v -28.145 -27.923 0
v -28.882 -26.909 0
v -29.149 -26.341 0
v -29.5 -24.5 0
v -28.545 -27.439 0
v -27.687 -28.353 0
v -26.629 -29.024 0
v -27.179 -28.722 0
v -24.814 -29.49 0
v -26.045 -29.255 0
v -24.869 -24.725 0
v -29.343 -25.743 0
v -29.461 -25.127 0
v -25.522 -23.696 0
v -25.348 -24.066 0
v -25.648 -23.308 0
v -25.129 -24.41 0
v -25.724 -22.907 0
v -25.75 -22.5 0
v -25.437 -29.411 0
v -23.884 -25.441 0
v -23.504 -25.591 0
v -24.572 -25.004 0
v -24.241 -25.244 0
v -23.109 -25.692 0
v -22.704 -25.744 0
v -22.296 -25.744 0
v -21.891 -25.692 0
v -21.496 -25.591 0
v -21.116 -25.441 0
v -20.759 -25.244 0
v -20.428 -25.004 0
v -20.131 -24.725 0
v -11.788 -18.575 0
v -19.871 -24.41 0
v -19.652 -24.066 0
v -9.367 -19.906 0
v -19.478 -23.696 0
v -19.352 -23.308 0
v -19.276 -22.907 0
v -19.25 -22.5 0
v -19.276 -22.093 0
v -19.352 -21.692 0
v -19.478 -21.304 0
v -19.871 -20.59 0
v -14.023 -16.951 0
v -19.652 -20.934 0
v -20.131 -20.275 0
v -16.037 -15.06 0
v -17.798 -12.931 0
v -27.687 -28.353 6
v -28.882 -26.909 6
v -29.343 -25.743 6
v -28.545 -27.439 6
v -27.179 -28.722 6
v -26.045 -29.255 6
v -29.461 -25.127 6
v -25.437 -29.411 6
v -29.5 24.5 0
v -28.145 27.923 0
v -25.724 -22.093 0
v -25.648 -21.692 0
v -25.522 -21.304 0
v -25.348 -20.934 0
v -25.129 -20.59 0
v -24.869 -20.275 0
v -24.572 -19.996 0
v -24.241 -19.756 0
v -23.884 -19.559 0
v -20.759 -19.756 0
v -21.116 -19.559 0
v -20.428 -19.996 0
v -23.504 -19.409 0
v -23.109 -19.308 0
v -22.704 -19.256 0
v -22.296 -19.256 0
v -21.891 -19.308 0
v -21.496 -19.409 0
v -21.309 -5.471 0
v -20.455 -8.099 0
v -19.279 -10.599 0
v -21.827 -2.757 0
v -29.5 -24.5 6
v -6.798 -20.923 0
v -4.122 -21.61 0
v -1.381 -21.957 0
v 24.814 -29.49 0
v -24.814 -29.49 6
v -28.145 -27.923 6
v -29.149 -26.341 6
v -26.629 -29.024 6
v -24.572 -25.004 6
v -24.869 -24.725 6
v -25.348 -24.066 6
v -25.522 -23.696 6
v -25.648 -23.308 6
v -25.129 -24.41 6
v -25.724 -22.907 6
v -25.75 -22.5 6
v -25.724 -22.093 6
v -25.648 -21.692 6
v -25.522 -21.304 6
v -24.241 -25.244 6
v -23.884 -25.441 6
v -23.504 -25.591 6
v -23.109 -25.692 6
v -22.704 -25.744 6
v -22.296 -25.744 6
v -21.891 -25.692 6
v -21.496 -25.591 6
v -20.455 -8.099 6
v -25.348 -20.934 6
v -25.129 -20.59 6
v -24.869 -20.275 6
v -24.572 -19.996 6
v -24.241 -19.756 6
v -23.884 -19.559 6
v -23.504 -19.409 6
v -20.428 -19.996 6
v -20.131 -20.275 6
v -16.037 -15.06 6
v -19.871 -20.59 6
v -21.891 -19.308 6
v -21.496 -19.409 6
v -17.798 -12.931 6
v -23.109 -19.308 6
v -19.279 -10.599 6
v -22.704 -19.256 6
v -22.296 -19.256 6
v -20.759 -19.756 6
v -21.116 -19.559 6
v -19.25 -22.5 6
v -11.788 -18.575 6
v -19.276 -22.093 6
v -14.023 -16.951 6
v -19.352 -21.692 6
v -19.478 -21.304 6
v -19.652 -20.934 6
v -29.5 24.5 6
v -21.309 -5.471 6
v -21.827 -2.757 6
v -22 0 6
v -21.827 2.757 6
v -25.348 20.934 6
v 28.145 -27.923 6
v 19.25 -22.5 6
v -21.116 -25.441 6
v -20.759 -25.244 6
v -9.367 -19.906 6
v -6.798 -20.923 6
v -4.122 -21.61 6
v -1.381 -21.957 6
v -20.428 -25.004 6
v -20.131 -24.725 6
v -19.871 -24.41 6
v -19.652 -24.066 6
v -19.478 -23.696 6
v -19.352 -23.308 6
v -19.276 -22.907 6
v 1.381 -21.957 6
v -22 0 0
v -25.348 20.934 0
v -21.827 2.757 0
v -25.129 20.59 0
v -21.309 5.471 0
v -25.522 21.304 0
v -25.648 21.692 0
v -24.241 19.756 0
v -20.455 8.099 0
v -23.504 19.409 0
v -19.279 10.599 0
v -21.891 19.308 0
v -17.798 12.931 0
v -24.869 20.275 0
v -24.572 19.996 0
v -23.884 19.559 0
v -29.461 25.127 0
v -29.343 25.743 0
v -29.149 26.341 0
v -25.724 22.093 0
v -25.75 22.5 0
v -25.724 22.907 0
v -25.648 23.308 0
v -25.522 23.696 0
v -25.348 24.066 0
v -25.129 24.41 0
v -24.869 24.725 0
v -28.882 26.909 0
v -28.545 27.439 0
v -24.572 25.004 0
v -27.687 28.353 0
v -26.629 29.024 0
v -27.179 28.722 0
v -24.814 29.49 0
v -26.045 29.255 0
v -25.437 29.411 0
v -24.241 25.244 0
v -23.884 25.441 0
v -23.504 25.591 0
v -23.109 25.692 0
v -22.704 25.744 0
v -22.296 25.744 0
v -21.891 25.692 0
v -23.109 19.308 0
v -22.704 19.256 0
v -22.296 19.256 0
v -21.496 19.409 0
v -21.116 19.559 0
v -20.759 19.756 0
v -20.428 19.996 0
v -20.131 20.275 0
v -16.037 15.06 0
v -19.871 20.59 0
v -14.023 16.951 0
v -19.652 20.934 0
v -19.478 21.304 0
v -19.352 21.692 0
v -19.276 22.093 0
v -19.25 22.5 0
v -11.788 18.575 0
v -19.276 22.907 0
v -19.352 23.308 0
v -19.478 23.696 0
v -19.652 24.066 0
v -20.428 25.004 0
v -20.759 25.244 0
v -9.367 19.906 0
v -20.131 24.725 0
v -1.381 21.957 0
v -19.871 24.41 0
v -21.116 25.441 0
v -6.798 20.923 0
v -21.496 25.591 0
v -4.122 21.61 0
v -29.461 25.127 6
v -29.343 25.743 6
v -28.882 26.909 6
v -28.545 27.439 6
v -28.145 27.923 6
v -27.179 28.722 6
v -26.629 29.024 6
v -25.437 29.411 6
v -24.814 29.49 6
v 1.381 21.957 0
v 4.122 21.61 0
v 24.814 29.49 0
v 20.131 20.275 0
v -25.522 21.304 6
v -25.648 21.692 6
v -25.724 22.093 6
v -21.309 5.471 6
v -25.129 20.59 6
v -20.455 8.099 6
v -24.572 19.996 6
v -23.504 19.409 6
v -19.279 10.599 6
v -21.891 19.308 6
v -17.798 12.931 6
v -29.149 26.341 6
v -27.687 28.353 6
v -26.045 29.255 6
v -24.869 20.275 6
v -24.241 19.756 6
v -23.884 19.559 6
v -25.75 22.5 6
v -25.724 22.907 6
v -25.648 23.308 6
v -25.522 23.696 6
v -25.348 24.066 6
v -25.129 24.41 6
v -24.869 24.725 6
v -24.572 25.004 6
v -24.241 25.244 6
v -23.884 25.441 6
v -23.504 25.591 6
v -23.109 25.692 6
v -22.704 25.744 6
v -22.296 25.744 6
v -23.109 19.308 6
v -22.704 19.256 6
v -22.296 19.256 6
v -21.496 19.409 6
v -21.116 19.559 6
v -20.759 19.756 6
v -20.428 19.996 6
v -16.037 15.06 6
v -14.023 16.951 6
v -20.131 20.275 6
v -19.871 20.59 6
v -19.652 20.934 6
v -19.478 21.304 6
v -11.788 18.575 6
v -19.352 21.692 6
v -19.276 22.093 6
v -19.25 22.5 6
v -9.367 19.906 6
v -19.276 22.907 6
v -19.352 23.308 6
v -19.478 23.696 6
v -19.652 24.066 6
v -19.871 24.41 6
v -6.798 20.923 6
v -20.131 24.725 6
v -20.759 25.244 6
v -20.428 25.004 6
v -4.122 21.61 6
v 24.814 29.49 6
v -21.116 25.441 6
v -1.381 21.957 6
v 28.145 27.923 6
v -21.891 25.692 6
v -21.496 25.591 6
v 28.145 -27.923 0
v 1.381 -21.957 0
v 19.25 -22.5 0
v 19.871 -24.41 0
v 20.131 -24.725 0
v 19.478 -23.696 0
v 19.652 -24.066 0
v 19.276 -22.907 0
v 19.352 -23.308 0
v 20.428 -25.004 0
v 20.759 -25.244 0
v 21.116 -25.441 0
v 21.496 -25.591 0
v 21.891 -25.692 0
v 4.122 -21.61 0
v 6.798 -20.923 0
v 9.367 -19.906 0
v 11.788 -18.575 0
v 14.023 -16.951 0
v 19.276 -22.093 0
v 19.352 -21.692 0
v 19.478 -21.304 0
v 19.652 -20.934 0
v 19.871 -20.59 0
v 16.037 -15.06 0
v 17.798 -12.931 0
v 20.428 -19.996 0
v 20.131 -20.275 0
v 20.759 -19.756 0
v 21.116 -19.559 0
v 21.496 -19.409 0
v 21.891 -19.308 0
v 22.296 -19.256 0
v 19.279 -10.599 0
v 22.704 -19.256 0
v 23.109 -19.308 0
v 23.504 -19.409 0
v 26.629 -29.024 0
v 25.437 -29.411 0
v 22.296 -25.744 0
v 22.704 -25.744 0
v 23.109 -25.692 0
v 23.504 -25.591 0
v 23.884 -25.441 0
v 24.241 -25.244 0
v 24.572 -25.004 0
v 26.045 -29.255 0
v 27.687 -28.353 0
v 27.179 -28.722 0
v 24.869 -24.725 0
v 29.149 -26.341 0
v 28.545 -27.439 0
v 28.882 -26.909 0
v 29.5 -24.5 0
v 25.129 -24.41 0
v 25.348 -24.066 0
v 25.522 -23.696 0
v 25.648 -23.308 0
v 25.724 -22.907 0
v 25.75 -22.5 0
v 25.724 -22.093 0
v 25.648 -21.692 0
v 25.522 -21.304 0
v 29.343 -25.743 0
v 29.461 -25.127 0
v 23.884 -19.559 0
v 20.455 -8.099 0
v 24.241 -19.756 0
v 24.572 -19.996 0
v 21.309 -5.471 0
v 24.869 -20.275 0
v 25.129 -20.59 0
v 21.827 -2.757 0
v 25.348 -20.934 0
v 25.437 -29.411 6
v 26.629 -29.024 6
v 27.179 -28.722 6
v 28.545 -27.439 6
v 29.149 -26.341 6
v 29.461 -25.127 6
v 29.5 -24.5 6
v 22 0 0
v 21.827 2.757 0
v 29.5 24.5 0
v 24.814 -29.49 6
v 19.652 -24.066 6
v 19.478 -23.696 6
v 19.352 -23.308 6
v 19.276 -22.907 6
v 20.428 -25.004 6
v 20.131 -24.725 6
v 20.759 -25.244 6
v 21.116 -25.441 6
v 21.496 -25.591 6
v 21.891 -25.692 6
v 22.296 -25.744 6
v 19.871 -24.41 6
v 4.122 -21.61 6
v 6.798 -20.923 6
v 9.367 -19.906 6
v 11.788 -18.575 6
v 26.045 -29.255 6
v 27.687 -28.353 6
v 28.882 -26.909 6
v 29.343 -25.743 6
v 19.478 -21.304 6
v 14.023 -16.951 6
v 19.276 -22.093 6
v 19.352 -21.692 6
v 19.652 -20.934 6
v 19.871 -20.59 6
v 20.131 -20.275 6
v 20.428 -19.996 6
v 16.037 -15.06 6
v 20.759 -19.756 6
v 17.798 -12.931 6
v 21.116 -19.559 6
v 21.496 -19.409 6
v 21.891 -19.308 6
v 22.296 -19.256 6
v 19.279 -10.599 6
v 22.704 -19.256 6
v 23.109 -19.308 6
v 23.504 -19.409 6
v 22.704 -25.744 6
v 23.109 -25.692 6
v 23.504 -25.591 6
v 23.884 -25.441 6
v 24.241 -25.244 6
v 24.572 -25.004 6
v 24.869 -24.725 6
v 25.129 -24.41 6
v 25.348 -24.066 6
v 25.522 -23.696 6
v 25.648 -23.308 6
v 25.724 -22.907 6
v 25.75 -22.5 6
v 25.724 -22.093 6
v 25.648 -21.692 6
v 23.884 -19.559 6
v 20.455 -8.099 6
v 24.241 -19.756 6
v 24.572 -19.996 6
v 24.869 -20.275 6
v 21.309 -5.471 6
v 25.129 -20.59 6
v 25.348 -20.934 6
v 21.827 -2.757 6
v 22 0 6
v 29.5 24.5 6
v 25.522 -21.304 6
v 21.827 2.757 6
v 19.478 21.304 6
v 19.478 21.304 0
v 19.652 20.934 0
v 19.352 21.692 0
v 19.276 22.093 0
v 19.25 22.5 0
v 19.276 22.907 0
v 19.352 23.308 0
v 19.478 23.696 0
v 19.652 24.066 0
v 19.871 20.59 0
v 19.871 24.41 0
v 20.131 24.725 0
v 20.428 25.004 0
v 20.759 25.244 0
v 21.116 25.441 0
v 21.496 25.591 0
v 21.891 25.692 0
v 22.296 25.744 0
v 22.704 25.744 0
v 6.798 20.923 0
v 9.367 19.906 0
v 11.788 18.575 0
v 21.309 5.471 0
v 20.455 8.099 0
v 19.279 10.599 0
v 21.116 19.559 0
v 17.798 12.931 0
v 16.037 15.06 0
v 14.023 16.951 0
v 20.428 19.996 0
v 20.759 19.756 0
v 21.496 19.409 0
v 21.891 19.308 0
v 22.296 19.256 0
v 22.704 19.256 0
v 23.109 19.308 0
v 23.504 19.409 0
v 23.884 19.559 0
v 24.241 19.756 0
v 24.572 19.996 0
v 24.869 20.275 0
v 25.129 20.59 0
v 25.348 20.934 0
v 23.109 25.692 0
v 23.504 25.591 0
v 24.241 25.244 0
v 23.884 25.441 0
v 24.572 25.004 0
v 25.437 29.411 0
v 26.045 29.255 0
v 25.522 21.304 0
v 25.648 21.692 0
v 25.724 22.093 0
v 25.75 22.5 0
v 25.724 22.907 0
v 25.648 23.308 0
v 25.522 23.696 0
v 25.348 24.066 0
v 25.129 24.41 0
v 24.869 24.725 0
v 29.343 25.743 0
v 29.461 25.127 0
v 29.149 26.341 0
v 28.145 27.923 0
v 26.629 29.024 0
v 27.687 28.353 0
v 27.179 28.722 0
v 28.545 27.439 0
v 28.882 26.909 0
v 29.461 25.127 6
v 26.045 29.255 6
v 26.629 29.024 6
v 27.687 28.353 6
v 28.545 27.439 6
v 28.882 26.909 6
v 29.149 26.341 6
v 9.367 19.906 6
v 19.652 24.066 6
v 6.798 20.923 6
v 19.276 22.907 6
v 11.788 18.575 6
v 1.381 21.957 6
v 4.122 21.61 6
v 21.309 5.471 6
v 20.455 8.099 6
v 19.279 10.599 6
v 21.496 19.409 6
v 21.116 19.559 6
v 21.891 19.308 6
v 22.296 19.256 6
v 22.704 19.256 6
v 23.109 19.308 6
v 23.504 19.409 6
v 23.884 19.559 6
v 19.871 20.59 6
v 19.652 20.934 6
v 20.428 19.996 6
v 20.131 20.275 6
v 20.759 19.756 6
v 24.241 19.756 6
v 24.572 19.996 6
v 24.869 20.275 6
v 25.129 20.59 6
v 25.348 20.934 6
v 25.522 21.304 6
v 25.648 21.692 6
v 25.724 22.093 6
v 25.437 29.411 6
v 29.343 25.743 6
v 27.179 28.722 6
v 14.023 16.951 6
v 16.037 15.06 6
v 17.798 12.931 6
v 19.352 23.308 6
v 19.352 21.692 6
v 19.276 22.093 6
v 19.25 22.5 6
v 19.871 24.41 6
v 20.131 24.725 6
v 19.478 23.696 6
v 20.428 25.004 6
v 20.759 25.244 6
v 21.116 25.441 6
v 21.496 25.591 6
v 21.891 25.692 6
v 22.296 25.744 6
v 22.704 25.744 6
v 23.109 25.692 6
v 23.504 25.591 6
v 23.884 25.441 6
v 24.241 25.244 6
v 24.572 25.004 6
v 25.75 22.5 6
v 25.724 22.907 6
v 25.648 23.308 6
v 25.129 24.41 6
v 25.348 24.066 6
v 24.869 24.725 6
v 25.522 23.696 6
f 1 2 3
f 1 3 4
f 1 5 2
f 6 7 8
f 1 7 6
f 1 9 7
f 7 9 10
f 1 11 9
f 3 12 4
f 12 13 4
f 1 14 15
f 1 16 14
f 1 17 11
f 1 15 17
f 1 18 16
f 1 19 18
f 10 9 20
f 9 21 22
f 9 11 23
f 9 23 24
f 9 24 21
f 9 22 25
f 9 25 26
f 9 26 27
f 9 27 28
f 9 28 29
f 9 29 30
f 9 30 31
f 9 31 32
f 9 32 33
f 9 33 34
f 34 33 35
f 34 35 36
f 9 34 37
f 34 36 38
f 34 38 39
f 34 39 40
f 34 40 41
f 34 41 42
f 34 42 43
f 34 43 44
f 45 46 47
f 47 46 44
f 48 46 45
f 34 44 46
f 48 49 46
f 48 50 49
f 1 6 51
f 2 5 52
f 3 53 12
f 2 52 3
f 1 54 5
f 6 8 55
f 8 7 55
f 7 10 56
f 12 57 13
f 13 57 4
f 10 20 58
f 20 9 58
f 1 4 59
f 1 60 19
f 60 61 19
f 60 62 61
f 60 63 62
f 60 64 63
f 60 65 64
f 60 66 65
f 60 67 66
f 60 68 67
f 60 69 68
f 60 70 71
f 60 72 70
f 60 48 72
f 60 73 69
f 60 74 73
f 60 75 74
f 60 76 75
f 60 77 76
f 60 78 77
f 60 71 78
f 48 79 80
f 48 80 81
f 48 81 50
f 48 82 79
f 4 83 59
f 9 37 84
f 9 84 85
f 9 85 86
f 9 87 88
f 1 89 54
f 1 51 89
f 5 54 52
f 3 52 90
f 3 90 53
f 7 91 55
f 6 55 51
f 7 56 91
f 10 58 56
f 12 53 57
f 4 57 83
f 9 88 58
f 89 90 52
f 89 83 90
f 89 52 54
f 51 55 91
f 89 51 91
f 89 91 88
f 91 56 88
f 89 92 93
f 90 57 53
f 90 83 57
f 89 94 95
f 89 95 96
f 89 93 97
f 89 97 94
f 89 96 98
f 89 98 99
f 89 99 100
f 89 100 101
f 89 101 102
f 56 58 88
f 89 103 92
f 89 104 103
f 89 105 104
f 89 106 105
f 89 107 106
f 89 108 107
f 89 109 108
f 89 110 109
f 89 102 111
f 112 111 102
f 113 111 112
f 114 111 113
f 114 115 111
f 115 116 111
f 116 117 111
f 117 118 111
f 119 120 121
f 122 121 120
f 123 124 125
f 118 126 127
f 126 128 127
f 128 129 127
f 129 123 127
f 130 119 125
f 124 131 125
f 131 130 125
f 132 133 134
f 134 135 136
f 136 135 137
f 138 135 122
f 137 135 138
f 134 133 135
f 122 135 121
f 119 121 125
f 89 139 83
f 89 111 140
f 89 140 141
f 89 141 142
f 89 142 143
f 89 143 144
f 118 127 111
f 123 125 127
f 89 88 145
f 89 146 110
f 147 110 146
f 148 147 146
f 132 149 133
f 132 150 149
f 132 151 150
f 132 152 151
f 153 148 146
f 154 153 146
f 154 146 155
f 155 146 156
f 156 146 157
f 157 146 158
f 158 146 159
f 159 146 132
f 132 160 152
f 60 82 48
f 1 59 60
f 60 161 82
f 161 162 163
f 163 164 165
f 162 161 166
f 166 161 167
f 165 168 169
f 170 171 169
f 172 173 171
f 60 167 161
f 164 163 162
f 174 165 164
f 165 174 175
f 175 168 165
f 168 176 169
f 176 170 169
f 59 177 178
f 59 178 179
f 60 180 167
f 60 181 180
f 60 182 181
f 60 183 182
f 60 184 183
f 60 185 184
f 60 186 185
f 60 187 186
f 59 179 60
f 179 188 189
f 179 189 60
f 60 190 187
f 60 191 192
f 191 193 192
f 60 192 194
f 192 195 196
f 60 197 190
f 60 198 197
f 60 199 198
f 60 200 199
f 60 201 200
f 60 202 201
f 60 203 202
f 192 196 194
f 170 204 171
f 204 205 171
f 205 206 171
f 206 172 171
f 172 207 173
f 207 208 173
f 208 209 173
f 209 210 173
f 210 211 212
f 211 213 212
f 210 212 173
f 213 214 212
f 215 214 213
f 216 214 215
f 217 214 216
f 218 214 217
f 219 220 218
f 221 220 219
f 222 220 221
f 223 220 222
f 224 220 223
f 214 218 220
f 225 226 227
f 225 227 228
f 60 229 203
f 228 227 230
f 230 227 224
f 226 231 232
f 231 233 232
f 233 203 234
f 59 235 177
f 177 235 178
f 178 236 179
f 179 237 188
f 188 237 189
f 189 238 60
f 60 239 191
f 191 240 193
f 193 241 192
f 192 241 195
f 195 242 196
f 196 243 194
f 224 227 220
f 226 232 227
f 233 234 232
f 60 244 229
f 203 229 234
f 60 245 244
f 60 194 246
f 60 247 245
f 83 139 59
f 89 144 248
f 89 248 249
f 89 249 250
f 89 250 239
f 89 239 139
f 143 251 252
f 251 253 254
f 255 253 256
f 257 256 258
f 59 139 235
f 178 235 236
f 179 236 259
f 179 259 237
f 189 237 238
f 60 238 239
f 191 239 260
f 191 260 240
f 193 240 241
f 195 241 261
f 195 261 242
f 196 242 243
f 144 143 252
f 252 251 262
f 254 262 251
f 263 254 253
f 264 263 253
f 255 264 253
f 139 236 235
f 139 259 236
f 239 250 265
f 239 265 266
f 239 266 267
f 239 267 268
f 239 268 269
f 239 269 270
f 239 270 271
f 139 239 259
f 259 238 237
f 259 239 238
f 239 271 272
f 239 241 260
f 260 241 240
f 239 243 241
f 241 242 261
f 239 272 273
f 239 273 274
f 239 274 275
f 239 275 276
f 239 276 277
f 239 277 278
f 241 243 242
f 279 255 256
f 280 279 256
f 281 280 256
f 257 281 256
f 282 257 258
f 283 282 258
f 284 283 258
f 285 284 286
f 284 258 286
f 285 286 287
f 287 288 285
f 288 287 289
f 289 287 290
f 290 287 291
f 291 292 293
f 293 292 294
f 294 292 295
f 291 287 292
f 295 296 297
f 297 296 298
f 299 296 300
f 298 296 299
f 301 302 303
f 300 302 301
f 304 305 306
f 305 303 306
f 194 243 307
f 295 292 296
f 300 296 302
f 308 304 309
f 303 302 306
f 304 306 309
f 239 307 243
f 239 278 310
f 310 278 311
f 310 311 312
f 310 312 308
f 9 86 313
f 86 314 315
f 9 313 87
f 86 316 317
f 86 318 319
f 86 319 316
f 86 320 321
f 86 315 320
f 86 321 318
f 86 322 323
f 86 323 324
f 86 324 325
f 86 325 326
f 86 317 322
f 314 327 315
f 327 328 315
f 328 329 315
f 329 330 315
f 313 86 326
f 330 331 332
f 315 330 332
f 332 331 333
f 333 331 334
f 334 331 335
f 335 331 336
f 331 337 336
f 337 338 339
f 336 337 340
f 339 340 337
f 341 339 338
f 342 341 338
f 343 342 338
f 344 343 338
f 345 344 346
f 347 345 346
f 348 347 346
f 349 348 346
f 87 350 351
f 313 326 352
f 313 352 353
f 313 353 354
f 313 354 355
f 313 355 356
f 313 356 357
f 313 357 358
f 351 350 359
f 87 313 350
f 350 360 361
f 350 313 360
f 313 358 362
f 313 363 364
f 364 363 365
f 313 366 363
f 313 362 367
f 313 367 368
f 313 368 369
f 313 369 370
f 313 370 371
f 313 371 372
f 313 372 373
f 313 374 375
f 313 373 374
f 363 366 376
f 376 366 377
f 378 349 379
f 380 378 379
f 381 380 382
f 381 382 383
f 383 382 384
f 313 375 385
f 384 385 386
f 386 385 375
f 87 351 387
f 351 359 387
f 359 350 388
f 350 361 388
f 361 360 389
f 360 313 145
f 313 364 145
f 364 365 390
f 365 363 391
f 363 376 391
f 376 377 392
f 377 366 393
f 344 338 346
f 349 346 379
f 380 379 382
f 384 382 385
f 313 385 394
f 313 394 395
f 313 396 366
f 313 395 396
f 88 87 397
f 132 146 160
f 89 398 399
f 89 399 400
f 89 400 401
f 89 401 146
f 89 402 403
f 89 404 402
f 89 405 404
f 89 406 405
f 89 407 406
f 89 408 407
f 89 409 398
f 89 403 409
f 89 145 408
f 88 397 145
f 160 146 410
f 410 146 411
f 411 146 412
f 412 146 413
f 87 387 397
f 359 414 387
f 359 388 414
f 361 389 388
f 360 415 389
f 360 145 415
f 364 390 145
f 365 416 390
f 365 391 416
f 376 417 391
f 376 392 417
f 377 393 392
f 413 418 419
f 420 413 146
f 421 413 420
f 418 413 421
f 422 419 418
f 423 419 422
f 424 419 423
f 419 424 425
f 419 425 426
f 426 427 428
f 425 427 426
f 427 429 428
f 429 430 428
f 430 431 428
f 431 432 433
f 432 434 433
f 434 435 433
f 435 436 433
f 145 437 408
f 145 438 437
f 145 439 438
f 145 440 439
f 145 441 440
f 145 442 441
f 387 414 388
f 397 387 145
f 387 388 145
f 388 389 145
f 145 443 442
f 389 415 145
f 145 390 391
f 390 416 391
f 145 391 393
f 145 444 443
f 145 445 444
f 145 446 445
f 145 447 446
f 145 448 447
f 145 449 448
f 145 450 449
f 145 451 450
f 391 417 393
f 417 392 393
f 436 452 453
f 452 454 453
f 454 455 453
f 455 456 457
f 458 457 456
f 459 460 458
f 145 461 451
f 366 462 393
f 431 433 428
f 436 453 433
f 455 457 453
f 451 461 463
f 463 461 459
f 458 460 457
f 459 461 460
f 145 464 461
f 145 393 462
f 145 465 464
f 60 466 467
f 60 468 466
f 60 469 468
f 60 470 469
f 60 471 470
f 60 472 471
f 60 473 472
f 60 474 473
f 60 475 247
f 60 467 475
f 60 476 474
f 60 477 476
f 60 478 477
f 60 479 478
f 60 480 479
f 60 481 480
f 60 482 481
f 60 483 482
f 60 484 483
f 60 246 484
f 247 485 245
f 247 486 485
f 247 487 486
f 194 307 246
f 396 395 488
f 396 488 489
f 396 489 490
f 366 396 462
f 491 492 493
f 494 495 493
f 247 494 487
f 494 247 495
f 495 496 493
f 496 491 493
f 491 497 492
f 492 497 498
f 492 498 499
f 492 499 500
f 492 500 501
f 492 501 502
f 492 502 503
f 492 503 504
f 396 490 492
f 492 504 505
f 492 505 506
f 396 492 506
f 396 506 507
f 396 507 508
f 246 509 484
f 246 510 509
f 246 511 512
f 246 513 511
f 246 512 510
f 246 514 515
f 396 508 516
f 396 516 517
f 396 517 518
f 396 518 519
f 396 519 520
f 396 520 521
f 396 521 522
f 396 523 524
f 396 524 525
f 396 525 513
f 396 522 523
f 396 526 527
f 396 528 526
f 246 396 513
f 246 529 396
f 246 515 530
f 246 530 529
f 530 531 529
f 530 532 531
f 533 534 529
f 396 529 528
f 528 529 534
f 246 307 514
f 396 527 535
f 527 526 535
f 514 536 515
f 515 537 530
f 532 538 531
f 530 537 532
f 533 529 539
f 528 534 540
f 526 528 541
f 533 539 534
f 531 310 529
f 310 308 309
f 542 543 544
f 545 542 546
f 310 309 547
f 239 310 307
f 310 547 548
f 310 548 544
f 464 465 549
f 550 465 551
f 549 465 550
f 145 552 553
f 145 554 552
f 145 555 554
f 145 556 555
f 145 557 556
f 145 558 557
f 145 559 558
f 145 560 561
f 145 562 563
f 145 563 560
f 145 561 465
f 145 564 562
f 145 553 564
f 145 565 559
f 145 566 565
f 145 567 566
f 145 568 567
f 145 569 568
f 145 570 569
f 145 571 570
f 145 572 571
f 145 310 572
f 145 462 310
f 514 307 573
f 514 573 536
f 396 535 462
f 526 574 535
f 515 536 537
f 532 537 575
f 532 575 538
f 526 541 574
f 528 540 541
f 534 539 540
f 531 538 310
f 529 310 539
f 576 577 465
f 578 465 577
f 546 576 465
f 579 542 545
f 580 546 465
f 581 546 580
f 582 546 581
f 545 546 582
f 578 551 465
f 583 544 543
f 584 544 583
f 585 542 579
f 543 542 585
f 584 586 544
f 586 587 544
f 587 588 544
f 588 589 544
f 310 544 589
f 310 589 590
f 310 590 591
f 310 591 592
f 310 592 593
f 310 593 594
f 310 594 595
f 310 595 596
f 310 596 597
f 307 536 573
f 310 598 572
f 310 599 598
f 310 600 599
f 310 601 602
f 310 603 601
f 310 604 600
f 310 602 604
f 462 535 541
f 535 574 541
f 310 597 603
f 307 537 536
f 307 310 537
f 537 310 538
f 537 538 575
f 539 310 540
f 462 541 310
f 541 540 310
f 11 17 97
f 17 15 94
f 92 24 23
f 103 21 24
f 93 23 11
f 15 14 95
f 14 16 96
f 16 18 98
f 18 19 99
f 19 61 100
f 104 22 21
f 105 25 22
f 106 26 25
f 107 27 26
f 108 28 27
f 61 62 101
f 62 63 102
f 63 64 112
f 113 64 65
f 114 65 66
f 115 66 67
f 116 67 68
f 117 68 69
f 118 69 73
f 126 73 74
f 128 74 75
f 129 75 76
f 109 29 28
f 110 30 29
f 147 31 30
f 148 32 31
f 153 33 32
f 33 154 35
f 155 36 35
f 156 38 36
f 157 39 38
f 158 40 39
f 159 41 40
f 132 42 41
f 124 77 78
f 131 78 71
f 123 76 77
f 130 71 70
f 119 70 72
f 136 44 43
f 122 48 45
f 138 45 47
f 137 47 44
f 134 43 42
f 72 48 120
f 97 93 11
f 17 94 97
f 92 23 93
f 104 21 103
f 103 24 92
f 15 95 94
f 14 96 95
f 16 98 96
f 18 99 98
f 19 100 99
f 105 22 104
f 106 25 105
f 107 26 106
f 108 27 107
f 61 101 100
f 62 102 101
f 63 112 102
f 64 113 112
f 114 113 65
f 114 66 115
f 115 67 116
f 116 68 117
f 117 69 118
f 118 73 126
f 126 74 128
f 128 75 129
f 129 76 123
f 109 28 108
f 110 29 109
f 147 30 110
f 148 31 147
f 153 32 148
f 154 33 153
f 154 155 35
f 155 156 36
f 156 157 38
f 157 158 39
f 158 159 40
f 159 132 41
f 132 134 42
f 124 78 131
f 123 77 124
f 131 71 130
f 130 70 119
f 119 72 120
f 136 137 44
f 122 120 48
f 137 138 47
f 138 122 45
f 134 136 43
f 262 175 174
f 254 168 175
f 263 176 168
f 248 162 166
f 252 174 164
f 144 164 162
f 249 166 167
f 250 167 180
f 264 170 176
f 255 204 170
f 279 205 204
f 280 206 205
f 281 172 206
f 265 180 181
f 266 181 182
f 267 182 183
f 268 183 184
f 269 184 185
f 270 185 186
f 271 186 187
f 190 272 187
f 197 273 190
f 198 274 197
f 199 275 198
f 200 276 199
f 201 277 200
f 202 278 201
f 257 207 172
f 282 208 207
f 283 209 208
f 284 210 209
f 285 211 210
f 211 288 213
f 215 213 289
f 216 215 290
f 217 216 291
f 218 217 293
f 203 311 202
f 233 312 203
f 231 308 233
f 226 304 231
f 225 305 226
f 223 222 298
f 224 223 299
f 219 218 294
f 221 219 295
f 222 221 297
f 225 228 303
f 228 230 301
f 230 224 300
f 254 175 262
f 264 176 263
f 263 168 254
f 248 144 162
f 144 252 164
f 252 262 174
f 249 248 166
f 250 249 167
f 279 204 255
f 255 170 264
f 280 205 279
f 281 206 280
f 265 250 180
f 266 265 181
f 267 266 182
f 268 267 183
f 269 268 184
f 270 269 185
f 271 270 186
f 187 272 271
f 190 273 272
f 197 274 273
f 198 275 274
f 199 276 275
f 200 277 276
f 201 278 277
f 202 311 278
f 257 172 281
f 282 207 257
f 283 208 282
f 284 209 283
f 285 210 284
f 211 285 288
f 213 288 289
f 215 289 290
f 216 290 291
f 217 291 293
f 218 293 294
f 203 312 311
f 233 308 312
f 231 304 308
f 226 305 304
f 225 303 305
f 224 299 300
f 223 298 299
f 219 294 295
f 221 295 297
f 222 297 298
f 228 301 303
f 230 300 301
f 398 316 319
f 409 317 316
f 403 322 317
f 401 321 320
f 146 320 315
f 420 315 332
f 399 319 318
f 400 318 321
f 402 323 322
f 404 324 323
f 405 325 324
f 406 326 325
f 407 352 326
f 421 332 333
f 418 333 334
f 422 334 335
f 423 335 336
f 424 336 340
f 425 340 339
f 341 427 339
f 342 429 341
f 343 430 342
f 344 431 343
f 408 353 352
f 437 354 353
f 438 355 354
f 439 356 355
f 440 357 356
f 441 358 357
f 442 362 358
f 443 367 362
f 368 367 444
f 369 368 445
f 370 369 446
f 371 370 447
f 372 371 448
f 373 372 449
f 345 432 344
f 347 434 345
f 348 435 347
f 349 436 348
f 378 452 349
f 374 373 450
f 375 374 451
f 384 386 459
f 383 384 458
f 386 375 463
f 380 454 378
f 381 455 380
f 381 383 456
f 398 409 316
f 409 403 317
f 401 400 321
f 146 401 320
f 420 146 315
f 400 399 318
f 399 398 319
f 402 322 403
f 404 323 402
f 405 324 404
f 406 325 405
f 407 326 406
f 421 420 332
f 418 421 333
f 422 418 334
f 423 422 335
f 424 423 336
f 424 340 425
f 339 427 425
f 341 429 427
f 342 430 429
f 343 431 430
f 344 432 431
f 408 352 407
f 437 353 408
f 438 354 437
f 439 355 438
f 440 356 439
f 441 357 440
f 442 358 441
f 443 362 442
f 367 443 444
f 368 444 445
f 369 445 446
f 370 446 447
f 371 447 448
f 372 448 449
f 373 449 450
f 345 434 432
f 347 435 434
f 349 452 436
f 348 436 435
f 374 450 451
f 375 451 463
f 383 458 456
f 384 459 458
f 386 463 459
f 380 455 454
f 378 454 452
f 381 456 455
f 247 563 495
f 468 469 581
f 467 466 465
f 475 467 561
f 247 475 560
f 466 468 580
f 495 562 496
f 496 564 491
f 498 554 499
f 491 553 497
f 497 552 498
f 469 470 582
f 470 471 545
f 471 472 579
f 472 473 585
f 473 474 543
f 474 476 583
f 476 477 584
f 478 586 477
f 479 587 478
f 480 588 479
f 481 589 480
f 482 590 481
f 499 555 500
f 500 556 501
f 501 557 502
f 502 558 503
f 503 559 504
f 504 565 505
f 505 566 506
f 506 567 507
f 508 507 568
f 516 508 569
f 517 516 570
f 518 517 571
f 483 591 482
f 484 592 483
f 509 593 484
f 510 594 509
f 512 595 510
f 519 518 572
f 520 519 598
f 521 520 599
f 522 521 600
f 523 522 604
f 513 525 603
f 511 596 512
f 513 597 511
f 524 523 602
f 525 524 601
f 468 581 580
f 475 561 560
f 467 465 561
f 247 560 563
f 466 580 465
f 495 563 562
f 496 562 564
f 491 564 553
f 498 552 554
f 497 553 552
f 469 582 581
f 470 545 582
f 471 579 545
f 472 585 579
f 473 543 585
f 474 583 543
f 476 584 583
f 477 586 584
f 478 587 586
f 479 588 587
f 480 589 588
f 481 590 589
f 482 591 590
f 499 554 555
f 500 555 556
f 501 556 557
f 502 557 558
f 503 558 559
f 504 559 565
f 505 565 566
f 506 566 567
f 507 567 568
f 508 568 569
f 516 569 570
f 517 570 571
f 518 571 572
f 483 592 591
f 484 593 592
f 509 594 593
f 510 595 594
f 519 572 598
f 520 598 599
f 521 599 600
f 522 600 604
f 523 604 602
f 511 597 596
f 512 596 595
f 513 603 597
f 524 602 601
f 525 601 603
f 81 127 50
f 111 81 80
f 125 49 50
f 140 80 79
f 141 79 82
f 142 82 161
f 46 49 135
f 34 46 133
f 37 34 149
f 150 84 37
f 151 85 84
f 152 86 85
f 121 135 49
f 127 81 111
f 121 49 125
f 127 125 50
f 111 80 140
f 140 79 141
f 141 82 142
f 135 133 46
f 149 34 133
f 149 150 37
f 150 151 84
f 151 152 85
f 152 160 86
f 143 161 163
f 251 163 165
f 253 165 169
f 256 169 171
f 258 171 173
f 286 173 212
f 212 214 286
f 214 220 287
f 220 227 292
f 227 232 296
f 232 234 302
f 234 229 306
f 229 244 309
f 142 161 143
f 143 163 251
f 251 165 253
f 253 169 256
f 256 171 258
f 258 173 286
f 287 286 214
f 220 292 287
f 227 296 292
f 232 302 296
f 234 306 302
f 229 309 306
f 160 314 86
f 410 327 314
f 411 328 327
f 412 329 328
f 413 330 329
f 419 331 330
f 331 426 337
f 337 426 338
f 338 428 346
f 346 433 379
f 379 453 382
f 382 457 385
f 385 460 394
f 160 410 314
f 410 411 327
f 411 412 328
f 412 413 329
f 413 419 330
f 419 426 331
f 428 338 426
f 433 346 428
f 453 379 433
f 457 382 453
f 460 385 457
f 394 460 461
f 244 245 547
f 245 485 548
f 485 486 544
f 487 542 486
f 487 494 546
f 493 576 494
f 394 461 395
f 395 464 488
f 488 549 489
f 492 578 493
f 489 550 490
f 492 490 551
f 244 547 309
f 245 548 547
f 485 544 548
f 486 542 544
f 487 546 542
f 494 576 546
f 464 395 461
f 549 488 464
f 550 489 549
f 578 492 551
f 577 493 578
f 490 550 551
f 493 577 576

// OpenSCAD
$fn = 50;

difference() {
	union() {
		hull() {
			translate(v = [-24.5, 24.5, 0]) {
				cylinder(h = 6, r = 5);
			}
			translate(v = [24.5, 24.5, 0]) {
				cylinder(h = 6, r = 5);
			}
			translate(v = [-24.5, -24.5, 0]) {
				cylinder(h = 6, r = 5);
			}
			translate(v = [24.5, -24.5, 0]) {
				cylinder(h = 6, r = 5);
			}
		}
	}
	union() {
		translate(v = [-22.5, -22.5, -100.0]) {
			cylinder(h = 200, r = 3.25);
		}
		translate(v = [-22.5, 22.5, -100.0]) {
			cylinder(h = 200, r = 3.25);
		}
		translate(v = [22.5, -22.5, -100.0]) {
			cylinder(h = 200, r = 3.25);
		}
		translate(v = [22.5, 22.5, -100.0]) {
			cylinder(h = 200, r = 3.25);
		}
		translate(v = [-22.5, -22.5, -100.0]) {
			cylinder(h = 200, r = 1.8);
		}
		translate(v = [-22.5, 22.5, -100.0]) {
			cylinder(h = 200, r = 1.8);
		}
		translate(v = [22.5, -22.5, -100.0]) {
			cylinder(h = 200, r = 1.8);
		}
		translate(v = [22.5, 22.5, -100.0]) {
			cylinder(h = 200, r = 1.8);
		}
		cylinder(h = 6, r = 22.0);
	}
}
